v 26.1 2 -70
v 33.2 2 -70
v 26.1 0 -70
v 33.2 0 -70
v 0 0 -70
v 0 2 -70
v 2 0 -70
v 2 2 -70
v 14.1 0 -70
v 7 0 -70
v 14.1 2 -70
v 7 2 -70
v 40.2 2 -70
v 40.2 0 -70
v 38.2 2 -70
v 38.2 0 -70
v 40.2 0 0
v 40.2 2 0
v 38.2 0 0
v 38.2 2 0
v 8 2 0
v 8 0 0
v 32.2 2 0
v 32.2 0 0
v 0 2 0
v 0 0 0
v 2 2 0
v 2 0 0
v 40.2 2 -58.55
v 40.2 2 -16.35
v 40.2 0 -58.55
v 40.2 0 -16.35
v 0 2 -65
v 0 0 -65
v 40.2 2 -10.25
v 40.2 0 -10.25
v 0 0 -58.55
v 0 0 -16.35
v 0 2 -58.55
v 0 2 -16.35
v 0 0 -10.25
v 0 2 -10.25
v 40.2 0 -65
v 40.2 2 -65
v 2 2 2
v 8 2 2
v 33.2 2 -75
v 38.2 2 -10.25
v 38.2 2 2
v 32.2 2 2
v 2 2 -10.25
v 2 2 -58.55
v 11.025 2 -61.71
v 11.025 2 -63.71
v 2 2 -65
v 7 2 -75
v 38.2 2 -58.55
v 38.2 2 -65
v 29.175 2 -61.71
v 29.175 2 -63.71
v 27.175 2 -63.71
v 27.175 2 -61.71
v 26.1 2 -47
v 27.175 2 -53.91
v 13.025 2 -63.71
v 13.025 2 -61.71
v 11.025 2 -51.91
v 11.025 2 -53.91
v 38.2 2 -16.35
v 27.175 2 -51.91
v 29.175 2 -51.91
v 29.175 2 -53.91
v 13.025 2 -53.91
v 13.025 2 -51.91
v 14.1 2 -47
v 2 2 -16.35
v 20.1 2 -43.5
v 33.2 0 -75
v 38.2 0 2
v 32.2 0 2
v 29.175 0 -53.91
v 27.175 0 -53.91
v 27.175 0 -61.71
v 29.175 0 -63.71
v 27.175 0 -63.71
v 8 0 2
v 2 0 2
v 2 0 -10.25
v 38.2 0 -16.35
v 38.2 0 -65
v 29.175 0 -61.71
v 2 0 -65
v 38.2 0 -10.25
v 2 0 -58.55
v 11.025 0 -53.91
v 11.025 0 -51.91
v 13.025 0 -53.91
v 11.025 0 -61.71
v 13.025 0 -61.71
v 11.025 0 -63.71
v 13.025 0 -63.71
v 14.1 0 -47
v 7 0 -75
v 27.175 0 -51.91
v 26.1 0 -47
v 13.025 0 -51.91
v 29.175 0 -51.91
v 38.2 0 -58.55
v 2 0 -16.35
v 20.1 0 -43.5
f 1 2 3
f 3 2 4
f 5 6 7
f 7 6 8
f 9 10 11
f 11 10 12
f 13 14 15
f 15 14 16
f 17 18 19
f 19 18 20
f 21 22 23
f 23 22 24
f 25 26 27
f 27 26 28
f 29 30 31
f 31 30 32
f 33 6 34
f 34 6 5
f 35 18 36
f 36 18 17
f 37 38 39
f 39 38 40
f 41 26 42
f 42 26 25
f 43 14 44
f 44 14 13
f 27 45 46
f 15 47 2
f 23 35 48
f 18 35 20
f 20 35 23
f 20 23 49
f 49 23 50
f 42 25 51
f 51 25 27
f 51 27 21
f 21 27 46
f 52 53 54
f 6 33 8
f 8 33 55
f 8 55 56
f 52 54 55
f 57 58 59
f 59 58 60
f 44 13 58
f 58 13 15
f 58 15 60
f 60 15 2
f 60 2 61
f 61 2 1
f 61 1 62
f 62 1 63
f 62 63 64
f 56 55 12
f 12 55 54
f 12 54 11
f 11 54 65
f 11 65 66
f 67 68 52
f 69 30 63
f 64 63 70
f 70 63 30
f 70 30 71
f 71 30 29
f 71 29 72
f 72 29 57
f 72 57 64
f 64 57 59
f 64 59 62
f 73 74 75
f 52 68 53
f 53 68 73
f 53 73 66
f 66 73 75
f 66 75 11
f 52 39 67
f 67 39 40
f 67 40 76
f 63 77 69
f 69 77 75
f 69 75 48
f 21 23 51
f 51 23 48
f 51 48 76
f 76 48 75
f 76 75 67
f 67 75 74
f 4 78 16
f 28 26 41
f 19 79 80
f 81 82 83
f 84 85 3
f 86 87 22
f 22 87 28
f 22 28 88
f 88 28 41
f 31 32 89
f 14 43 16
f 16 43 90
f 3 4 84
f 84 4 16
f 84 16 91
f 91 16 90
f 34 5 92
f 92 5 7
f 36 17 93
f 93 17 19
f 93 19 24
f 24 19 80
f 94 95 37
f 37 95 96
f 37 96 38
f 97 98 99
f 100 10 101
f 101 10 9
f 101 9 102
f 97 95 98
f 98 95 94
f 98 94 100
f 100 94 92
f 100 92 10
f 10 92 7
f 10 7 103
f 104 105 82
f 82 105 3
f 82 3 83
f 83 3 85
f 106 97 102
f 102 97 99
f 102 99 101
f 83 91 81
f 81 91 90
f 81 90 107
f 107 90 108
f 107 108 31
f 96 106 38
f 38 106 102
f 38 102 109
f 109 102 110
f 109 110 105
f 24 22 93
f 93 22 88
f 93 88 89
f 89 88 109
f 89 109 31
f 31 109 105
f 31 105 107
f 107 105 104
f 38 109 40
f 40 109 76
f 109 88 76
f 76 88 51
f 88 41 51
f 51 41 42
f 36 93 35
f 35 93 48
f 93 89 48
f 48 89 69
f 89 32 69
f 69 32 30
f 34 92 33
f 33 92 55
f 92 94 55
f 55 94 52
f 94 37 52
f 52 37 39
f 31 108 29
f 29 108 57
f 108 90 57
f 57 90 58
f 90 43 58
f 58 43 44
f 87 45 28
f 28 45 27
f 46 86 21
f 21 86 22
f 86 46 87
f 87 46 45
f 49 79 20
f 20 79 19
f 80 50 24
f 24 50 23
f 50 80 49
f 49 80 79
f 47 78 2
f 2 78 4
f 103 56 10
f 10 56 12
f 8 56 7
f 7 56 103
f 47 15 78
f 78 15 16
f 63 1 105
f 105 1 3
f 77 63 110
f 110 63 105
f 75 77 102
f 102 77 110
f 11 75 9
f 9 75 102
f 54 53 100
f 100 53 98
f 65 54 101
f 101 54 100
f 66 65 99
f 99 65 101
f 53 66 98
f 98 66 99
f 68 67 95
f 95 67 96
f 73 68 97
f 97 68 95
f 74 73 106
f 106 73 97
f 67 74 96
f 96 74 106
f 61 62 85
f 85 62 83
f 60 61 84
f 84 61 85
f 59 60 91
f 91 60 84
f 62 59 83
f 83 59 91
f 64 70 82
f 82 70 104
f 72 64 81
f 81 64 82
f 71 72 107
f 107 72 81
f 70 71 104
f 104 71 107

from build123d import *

# Parameters (mm, degrees)
SKETCH_1_W          = 40.2
SKETCH_1_H          = 70
EXTRUDE_1_DEPTH     = 2
SKETCH_2_W          = 2
SKETCH_2_H          = 6.1
SKETCH_2_H_2        = 6.45
CUT_EXTRUDE_1_DEPTH = 81.746764641
SKETCH_3_W          = 6
SKETCH_3_H          = 2
EXTRUDE_2_DEPTH     = 2
SKETCH_4_W          = 5
SKETCH_4_H          = 2
EXTRUDE_3_DEPTH     = 5
CUT_EXTRUDE_2_DEPTH = 86.117800723
CUT_EXTRUDE_3_DEPTH = 5
SKETCH_8_W          = 2
SKETCH_8_H          = 2
CUT_EXTRUDE_4_DEPTH = 5


with BuildPart() as part:
    # ｽｹｯﾁ1 → ﾎﾞｽ - 押し出し1 (new body)
    with BuildSketch(Plane(origin=(0, 0, 0), x_dir=(1, 0, 0), z_dir=(0, 1, 0))):
        with Locations((20.1, 35)):
            Rectangle(SKETCH_1_W, SKETCH_1_H)
    extrude(amount=EXTRUDE_1_DEPTH)

    # ｽｹｯﾁ2 → ｶｯﾄ - 押し出し1 (cut, through all)
    with BuildSketch(Plane(origin=(0, 2, 0), x_dir=(1, 0, 0), z_dir=(0, 1, 0))):
        with Locations((1, 13.3)):
            Rectangle(SKETCH_2_W, SKETCH_2_H)
        with Locations((39.2, 13.3)):
            Rectangle(SKETCH_2_W, SKETCH_2_H)
        with Locations((1, 61.775)):
            Rectangle(SKETCH_2_W, SKETCH_2_H_2)
        with Locations((39.2, 61.775)):
            Rectangle(SKETCH_2_W, SKETCH_2_H_2)
    extrude(amount=-CUT_EXTRUDE_1_DEPTH, mode=Mode.SUBTRACT)

    # ｽｹｯﾁ3 → ﾎﾞｽ - 押し出し2 (add)
    with BuildSketch(Plane.XY):
        with Locations((5, 1)):
            Rectangle(SKETCH_3_W, SKETCH_3_H)
        with Locations((35.2, 1)):
            Rectangle(SKETCH_3_W, SKETCH_3_H)
    extrude(amount=EXTRUDE_2_DEPTH)

    # ｽｹｯﾁ4 → ﾎﾞｽ - 押し出し3 (add)
    with BuildSketch(Plane(origin=(0, 0, -70), x_dir=(-1, 0, 0), z_dir=(0, 0, -1))):
        with Locations((-35.7, 1)):
            Rectangle(SKETCH_4_W, SKETCH_4_H)
        with Locations((-4.5, 1)):
            Rectangle(SKETCH_4_W, SKETCH_4_H)
    extrude(amount=EXTRUDE_3_DEPTH)

    # ｽｹｯﾁ5 → ｶｯﾄ - 押し出し2 (cut, through all)
    with BuildSketch(Plane(origin=(0, 2, 0), x_dir=(1, 0, 0), z_dir=(0, 1, 0))):
        Polygon((7, 75), (2, 70), (2, 75), align=None)
        Polygon((33.2, 75), (38.2, 70), (38.2, 75), align=None)
    extrude(amount=-CUT_EXTRUDE_2_DEPTH, mode=Mode.SUBTRACT)

    # ｽｹｯﾁ7 → ｶｯﾄ - 押し出し3 (cut)
    with BuildSketch(Plane(origin=(0, 2, 0), x_dir=(1, 0, 0), z_dir=(0, 1, 0))):
        Polygon((14.1, 70), (14.1, 47), (20.1, 43.5), (26.1, 47), (26.1, 70), align=None)
    extrude(amount=-CUT_EXTRUDE_3_DEPTH, mode=Mode.SUBTRACT)

    # ｽｹｯﾁ8 → ｶｯﾄ - 押し出し4 (cut)
    with BuildSketch(Plane(origin=(0, 2, 0), x_dir=(1, 0, 0), z_dir=(0, 1, 0))):
        with Locations((12.025, 62.71)):
            Rectangle(SKETCH_8_W, SKETCH_8_H)
        with Locations((12.025, 52.91)):
            Rectangle(SKETCH_8_W, SKETCH_8_H)
        with Locations((28.175, 62.71)):
            Rectangle(SKETCH_8_W, SKETCH_8_H)
        with Locations((28.175, 52.91)):
            Rectangle(SKETCH_8_W, SKETCH_8_H)
    extrude(amount=-CUT_EXTRUDE_4_DEPTH, mode=Mode.SUBTRACT)


solid = part.part
